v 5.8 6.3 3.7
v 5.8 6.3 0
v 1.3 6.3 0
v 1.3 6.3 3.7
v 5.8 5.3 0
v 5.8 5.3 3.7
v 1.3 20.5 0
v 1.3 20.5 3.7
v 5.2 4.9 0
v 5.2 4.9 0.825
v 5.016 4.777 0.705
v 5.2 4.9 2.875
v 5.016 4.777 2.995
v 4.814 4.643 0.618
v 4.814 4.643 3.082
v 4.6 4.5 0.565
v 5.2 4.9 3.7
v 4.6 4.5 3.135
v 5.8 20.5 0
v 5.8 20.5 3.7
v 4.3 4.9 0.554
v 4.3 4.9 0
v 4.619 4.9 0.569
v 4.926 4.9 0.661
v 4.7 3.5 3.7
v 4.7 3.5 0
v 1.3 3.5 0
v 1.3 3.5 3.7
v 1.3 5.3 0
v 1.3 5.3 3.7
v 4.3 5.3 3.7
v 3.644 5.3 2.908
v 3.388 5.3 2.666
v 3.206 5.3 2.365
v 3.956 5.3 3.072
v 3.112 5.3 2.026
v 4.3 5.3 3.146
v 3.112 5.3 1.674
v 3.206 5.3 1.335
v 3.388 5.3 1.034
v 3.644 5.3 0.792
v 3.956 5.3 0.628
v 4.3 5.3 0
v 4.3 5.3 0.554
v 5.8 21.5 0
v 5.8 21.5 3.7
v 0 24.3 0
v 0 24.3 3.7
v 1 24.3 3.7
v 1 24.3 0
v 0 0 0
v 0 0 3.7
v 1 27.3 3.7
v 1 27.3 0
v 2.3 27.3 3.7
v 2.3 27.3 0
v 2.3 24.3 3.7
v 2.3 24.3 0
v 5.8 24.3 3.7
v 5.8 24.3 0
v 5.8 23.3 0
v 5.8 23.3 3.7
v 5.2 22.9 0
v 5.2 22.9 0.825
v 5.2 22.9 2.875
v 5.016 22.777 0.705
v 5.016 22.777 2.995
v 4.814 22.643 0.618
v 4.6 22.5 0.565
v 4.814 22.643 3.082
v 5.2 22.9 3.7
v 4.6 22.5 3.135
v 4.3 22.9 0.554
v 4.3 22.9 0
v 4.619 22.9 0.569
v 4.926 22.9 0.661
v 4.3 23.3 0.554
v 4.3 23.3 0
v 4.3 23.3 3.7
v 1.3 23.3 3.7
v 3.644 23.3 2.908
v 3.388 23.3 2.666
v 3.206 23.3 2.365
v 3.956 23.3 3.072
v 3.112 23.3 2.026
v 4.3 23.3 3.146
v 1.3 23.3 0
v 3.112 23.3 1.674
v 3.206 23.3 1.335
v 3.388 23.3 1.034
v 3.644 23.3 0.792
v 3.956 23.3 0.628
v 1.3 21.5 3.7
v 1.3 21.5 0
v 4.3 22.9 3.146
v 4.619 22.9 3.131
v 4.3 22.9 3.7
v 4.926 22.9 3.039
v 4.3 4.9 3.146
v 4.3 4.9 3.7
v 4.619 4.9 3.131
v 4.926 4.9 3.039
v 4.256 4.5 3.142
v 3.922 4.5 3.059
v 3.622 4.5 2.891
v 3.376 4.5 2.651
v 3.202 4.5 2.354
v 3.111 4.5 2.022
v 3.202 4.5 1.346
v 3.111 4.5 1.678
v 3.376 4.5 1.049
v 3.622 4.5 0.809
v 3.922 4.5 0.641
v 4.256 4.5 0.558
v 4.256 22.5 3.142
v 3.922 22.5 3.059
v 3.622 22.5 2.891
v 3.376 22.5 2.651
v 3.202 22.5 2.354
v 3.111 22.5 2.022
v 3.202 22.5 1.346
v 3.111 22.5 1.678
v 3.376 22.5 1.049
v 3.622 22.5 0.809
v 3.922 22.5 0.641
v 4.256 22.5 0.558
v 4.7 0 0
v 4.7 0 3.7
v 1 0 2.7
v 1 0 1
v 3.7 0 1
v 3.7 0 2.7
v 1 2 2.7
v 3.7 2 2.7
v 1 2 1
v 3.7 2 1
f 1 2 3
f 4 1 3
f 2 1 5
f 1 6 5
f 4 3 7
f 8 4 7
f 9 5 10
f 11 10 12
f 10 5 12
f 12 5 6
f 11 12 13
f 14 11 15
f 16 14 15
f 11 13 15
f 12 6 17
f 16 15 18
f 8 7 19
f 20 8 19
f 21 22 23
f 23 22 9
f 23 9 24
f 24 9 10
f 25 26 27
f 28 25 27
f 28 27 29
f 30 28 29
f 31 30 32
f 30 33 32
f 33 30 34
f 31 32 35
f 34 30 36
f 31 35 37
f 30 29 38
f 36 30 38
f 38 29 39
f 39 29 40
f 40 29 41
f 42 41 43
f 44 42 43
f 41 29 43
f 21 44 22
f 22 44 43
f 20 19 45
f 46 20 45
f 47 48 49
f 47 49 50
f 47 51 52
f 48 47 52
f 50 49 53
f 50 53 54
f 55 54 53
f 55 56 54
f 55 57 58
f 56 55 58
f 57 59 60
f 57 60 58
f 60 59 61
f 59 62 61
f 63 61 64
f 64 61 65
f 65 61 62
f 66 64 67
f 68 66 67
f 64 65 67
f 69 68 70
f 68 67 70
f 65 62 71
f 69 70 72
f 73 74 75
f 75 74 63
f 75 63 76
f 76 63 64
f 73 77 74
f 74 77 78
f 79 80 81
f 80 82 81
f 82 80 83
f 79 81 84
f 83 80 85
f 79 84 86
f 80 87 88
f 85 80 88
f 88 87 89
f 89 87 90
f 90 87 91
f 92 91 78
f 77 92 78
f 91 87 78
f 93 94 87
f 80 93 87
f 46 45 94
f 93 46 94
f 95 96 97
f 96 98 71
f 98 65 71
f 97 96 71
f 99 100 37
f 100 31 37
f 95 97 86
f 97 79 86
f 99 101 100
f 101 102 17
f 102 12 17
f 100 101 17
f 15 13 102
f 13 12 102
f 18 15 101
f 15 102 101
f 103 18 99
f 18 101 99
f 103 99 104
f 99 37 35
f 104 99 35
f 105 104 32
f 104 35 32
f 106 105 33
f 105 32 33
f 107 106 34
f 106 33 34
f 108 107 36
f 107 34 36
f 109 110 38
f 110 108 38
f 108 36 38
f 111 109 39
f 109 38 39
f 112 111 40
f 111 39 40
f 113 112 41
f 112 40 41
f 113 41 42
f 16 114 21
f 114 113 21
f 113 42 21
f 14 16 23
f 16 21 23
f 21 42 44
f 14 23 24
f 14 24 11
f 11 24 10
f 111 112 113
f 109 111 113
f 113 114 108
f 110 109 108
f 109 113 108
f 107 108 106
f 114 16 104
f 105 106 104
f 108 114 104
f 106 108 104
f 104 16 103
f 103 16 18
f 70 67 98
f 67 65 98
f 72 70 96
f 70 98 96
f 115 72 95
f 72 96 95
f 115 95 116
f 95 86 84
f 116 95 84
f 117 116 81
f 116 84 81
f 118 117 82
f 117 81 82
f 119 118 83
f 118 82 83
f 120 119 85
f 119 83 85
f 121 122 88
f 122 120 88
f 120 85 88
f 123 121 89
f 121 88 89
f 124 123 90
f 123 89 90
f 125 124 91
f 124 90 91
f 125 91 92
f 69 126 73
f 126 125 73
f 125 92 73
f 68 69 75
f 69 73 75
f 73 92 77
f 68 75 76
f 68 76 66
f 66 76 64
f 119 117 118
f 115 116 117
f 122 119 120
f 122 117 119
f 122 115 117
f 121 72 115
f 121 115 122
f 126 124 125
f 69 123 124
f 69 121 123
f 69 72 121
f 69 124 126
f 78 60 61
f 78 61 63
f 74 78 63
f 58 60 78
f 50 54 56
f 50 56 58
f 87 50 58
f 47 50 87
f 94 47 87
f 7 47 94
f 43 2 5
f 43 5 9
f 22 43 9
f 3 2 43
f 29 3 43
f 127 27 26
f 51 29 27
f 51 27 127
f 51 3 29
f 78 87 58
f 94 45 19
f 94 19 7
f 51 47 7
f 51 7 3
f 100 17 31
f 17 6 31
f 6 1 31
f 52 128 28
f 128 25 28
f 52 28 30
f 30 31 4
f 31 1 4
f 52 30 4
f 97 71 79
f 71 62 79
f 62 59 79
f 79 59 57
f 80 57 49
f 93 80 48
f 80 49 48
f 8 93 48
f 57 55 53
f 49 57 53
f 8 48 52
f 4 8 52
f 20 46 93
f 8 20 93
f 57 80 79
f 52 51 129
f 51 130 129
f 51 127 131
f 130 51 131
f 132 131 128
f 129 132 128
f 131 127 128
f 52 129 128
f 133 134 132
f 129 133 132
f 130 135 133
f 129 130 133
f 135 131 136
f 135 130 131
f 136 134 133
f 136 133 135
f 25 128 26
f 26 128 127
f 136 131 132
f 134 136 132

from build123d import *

# Parameters (mm, degrees)
PAD_DEPTH       = 3.7
SKETCH001_W     = 2.7
SKETCH001_H     = 1.7
POCKET_DEPTH    = 2
SKETCH002_R     = 1.3
PAD001_DEPTH    = 1
SKETCH003_W     = 1.5
SKETCH003_H     = 3.7
PAD002_DEPTH    = 0.4
POCKET001_DEPTH = 5
SKETCH005_R     = 1.3
PAD003_DEPTH    = 1
SKETCH006_W     = 1.5
SKETCH006_H     = 3.7
PAD004_DEPTH    = 0.4
POCKET002_DEPTH = 5
SKETCH008_W     = 4.7
SKETCH008_H     = 3.7
POCKET003_DEPTH = 0.4
SKETCH009_W     = 1.3
SKETCH009_H     = 3.7
POCKET004_DEPTH = 0.7
SKETCH010_W     = 2.5
SKETCH010_H     = 3.592296
POCKET005_DEPTH = 0.2
SKETCH011_W     = 2
SKETCH011_H     = 3.592296
POCKET006_DEPTH = 0.2
SKETCH012_W     = 3
SKETCH012_H     = 3.7
PAD005_DEPTH    = 1
SKETCH013_W     = 3
SKETCH013_H     = 3.7
POCKET007_DEPTH = 1
PAD006_DEPTH    = 0.4
SKETCH015_W     = 1
SKETCH015_H     = 3.7
PAD007_DEPTH    = 0.4


with BuildPart() as part:
    # Sketch → Pad (new body)
    with BuildSketch(Plane.XY):
        Polygon((0, 28), (0, 0), (4.7, 0), (4.7, 3.5), (1.3, 3.5), (1.3, 5.3), (5.8, 5.3), (5.8, 6.3), (1.3, 6.3), (1.3, 20.5), (5.8, 20.5), (5.8, 21.5), (1.3, 21.5), (1.3, 23.3), (5.8, 23.3), (5.8, 24.3), (1.3, 24.3), (1.3, 28), align=None)
    extrude(amount=PAD_DEPTH)

    # Sketch001 → Pocket (cut)
    with BuildSketch(Plane.XZ):
        with Locations((2.35, 1.85)):
            Rectangle(SKETCH001_W, SKETCH001_H)
    extrude(amount=-POCKET_DEPTH, mode=Mode.SUBTRACT)

    # Sketch002 → Pad001 (new body)
    with BuildSketch(Plane.XZ.offset(-5.3)):
        with Locations((4.4, 1.85)):
            Circle(SKETCH002_R)
    extrude(amount=PAD001_DEPTH)

    # Sketch003 → Pad002 (new body)
    with BuildSketch(Plane.XZ.offset(-5.3)):
        with Locations((5.05, 1.85)):
            Rectangle(SKETCH003_W, SKETCH003_H)
    extrude(amount=PAD002_DEPTH)

    # Sketch004 → Pocket001 (cut)
    with BuildSketch(Plane.XY.offset(3.7)):
        Polygon((5.8, 5.3), (4.3, 4.3), (5.8, 4.3), align=None)
    extrude(amount=-POCKET001_DEPTH, mode=Mode.SUBTRACT)

    # Sketch005 → Pad003 (new body)
    with BuildSketch(Plane.XZ.offset(-23.3)):
        with Locations((4.4, 1.85)):
            Circle(SKETCH005_R)
    extrude(amount=PAD003_DEPTH)

    # Sketch006 → Pad004 (new body)
    with BuildSketch(Plane.XZ.offset(-23.3)):
        with Locations((5.05, 1.85)):
            Rectangle(SKETCH006_W, SKETCH006_H)
    extrude(amount=PAD004_DEPTH)

    # Sketch007 → Pocket002 (cut)
    with BuildSketch(Plane.XY.offset(3.7)):
        Polygon((5.8, 23.3), (4.3, 22.3), (5.8, 22.3), align=None)
    extrude(amount=-POCKET002_DEPTH, mode=Mode.SUBTRACT)

    # Sketch008 → Pocket003 (cut)
    with BuildSketch(Plane.XZ):
        with Locations((2.35, 1.85)):
            Rectangle(SKETCH008_W, SKETCH008_H)
    extrude(amount=-POCKET003_DEPTH, mode=Mode.SUBTRACT)

    # Sketch009 → Pocket004 (cut)
    with BuildSketch(Plane(origin=(0, 28, 0), x_dir=(-1, 0, 0), z_dir=(0, 1, 0))):
        with Locations((-0.65, 1.85)):
            Rectangle(SKETCH009_W, SKETCH009_H)
    extrude(amount=-POCKET004_DEPTH, mode=Mode.SUBTRACT)

    # Sketch010 → Pocket005 (cut)
    with BuildSketch(Plane.XZ.offset(-4.3)):
        with Locations((4.05, 1.85)):
            Rectangle(SKETCH010_W, SKETCH010_H)
    extrude(amount=-POCKET005_DEPTH, mode=Mode.SUBTRACT)

    # Sketch011 → Pocket006 (cut)
    with BuildSketch(Plane.XZ.offset(-22.3)):
        with Locations((3.8, 1.85)):
            Rectangle(SKETCH011_W, SKETCH011_H)
    extrude(amount=-POCKET006_DEPTH, mode=Mode.SUBTRACT)

    # Sketch012 → Pad005 (new body)
    with BuildSketch(Plane.YZ.offset(1.3)):
        with Locations((25.8, 1.85)):
            Rectangle(SKETCH012_W, SKETCH012_H)
    extrude(amount=PAD005_DEPTH)

    # Sketch013 → Pocket007 (cut)
    with BuildSketch(Plane(origin=(0, 0, 0), x_dir=(0, -1, 0), z_dir=(-1, 0, 0))):
        with Locations((-25.8, 1.85)):
            Rectangle(SKETCH013_W, SKETCH013_H)
    extrude(amount=-POCKET007_DEPTH, mode=Mode.SUBTRACT)

    # Sketch014 → Pad006 (new body)
    with BuildSketch(Plane.XZ.offset(-0.4)):
        Polygon((3.7, 2.7), (3.7, 3.7), (0, 3.7), (0, 0), (3.7, 0), (3.7, 1), (1, 1), (1, 2.7), align=None)
    extrude(amount=PAD006_DEPTH)

    # Sketch015 → Pad007 (new body)
    with BuildSketch(Plane.XZ.offset(-0.4)):
        with Locations((4.2, 1.85)):
            Rectangle(SKETCH015_W, SKETCH015_H)
    extrude(amount=PAD007_DEPTH)


solid = part.part
